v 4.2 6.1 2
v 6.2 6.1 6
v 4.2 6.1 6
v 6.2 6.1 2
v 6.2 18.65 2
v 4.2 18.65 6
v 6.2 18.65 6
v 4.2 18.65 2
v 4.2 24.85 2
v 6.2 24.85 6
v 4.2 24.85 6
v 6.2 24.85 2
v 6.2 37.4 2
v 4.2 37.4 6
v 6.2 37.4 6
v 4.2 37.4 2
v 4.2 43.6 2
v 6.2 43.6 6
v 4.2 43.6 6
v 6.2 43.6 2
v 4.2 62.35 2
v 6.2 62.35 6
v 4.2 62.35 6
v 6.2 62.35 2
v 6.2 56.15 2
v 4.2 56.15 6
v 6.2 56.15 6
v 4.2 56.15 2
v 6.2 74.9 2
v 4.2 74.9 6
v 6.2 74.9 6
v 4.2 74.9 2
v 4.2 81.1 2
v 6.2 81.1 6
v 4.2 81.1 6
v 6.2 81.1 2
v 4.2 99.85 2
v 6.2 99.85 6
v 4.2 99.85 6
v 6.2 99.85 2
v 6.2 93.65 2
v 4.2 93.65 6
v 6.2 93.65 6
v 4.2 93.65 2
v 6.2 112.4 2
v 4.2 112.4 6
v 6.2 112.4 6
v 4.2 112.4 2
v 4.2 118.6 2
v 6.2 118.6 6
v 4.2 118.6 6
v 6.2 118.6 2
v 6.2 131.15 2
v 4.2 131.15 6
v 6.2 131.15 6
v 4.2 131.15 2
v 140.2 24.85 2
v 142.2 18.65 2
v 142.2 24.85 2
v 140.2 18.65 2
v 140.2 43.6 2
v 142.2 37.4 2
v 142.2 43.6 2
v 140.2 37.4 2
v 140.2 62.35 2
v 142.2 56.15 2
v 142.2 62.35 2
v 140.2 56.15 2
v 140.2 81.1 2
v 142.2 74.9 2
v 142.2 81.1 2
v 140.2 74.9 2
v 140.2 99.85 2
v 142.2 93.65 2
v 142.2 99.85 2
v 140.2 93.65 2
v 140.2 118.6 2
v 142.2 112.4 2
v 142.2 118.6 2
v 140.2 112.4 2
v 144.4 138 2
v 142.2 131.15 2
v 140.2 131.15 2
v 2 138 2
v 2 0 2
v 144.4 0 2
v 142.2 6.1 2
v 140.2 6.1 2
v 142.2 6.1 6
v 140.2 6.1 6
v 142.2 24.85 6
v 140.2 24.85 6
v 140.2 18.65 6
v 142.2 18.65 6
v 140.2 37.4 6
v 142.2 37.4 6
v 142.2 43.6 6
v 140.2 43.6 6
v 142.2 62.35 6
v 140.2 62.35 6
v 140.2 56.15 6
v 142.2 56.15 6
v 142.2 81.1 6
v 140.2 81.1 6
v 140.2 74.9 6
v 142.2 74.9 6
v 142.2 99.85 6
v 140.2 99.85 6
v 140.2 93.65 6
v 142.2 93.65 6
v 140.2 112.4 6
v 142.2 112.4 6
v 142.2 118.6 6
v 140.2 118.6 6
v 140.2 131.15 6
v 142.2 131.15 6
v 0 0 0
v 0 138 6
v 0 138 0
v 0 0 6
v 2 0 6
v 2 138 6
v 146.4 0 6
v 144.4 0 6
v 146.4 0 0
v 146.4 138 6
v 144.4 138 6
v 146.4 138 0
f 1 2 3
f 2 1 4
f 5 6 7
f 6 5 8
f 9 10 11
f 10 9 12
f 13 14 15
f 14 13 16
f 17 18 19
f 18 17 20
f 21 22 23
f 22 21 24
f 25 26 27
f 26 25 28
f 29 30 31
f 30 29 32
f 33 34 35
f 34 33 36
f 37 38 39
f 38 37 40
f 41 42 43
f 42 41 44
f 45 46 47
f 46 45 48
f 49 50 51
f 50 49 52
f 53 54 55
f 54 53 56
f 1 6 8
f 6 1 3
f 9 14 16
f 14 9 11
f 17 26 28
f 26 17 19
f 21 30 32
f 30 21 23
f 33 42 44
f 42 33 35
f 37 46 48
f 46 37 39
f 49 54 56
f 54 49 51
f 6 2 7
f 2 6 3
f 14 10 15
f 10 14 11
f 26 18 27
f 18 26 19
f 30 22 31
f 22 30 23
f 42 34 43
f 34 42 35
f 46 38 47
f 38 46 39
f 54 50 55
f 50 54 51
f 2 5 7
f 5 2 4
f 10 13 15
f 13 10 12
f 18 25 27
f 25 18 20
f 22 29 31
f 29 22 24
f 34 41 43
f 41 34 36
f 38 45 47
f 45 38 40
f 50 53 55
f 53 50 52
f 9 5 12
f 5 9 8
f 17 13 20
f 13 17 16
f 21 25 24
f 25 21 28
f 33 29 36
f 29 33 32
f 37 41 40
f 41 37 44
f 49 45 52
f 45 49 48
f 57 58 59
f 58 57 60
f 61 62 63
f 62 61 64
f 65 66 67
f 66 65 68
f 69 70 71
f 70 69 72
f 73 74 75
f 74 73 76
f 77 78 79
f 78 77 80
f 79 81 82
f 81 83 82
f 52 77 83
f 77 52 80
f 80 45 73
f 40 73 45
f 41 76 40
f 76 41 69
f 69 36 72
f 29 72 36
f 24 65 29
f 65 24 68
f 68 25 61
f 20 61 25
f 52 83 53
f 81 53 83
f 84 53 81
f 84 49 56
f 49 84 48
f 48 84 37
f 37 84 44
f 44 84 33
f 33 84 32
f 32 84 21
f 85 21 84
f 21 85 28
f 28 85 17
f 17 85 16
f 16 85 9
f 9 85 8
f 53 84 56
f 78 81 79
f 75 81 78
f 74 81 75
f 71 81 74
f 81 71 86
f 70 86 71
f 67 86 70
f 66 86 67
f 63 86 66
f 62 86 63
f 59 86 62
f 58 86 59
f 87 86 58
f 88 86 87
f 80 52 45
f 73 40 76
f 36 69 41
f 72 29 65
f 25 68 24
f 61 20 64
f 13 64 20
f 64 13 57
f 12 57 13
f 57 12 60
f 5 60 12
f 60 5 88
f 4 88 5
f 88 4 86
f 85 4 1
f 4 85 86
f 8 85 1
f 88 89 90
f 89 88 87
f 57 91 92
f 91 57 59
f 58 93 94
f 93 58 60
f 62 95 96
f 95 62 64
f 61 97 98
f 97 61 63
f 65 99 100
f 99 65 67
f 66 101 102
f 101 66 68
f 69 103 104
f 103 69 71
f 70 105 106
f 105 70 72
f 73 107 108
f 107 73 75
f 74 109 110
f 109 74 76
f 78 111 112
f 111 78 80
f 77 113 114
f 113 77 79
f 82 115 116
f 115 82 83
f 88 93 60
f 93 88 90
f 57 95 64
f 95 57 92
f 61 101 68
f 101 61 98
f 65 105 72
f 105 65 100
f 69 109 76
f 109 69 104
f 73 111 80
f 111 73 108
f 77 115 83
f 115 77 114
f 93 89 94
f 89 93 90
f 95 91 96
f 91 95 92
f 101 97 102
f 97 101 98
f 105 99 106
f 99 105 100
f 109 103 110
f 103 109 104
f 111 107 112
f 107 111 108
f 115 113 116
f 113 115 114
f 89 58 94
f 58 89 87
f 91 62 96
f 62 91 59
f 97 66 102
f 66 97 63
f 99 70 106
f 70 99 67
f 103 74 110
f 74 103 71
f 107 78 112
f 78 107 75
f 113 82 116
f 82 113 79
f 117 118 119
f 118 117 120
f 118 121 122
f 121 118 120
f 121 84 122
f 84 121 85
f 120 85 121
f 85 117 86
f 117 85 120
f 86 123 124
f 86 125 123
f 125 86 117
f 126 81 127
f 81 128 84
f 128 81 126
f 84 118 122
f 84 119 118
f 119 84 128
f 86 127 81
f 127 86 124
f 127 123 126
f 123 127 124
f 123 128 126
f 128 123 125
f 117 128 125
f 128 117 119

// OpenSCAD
// file: notecard-holder-config.scad
// --- TEKTONOLOGY NOTECARD HOLDER — SHARED CONFIG ---
// Shared parameters for notecard holder

// 3"x5" notecard dimensions (landscape)
card_w = 127;    // 5 inches (across holder)
card_h = 76.2;   // 3 inches (height)

// --- Plate Parameters ---
width          = card_w + 11;     // width of the box
length          = width;      // length of the box (square)
height         = card_h * 0.66;       // notecard slot height
sections       = 7;      // number of separate plates to print (divide length by this for each plate)
plates = sections + 1;
spacing       = 7;  // center-to-center hole spacing (along X)
row_spacing   = spacing * sin(60);          // tighter Y spacing for hex packing
plate_thick   = 2;      // plate thickness (mm)
edge_margin   = 4;      // margin from outermost hole to plate edge
tolerance = 0.1;

// Hole diameter: shaft passes through, head rests on top plate
// Head margin: (head_dia - hole_dia) / 2 = 1.2mm per side resting on plate
hole_dia      = 5;

// --- Derived plate dimensions ---
stagger       = spacing / 2;                                    // row-1 X offset for staggered pattern
pattern_x     = (width / hole_dia) * spacing + stagger;                 // combined hole pattern width
tab_length    = spacing;                                        // solid margin on each end for leg channels
plate_x       = pattern_x + (edge_margin * 2) + (tab_length * 2);  // plate length
plate_y       = (height / hole_dia) * row_spacing + (edge_margin * 2);  // plate width
hole_x0       = tab_length + edge_margin;                       // first hole X (row 0)
// main file
include <notecard-holder-config.scad>
module bottom() {
    bottom_width = width + (4 * (plate_thick + tolerance));
    rail_height = plate_thick * 2;

    gap_width = (width - plates * plate_thick - plate_thick * 2) / (plates) + plate_thick;
    cut_width = 3 * plate_thick + tolerance * 2;

    union() {
        // Base plate — solid slab; use slicer infill to control material usage
        cube([bottom_width, length, plate_thick]);

        // Rail channels along both long (Y) edges for side plates to slot into.
        // Each channel is two rails with a gap of plate_thick + 2*tolerance between them.
        for (side = [0, 1]) {
            // outer rail
            x_outer = side * (bottom_width - plate_thick);
            translate([x_outer, 0, plate_thick])
                cube([plate_thick, length, rail_height]);

            // inner rail — with gaps cut out for side rails to pass through
            x_inner = side == 0
                ? 2 * plate_thick + tolerance * 2
                : bottom_width - 3 * plate_thick - tolerance * 2;
            difference() {
                translate([x_inner, 0, plate_thick])
                    cube([plate_thick, length, rail_height]);

                for (i = [0 : plates - 1]) {
                    y_cut = i * (plate_thick + gap_width) - tolerance;
                    cw = (i == plates - 1) ? length - y_cut + 0.1 : cut_width;
                    translate([x_inner - 0.1, y_cut, plate_thick - 0.1])
                        cube([plate_thick + 0.2, cw, rail_height + 0.2]);
                }
            }
        }
    }
}

bottom();
